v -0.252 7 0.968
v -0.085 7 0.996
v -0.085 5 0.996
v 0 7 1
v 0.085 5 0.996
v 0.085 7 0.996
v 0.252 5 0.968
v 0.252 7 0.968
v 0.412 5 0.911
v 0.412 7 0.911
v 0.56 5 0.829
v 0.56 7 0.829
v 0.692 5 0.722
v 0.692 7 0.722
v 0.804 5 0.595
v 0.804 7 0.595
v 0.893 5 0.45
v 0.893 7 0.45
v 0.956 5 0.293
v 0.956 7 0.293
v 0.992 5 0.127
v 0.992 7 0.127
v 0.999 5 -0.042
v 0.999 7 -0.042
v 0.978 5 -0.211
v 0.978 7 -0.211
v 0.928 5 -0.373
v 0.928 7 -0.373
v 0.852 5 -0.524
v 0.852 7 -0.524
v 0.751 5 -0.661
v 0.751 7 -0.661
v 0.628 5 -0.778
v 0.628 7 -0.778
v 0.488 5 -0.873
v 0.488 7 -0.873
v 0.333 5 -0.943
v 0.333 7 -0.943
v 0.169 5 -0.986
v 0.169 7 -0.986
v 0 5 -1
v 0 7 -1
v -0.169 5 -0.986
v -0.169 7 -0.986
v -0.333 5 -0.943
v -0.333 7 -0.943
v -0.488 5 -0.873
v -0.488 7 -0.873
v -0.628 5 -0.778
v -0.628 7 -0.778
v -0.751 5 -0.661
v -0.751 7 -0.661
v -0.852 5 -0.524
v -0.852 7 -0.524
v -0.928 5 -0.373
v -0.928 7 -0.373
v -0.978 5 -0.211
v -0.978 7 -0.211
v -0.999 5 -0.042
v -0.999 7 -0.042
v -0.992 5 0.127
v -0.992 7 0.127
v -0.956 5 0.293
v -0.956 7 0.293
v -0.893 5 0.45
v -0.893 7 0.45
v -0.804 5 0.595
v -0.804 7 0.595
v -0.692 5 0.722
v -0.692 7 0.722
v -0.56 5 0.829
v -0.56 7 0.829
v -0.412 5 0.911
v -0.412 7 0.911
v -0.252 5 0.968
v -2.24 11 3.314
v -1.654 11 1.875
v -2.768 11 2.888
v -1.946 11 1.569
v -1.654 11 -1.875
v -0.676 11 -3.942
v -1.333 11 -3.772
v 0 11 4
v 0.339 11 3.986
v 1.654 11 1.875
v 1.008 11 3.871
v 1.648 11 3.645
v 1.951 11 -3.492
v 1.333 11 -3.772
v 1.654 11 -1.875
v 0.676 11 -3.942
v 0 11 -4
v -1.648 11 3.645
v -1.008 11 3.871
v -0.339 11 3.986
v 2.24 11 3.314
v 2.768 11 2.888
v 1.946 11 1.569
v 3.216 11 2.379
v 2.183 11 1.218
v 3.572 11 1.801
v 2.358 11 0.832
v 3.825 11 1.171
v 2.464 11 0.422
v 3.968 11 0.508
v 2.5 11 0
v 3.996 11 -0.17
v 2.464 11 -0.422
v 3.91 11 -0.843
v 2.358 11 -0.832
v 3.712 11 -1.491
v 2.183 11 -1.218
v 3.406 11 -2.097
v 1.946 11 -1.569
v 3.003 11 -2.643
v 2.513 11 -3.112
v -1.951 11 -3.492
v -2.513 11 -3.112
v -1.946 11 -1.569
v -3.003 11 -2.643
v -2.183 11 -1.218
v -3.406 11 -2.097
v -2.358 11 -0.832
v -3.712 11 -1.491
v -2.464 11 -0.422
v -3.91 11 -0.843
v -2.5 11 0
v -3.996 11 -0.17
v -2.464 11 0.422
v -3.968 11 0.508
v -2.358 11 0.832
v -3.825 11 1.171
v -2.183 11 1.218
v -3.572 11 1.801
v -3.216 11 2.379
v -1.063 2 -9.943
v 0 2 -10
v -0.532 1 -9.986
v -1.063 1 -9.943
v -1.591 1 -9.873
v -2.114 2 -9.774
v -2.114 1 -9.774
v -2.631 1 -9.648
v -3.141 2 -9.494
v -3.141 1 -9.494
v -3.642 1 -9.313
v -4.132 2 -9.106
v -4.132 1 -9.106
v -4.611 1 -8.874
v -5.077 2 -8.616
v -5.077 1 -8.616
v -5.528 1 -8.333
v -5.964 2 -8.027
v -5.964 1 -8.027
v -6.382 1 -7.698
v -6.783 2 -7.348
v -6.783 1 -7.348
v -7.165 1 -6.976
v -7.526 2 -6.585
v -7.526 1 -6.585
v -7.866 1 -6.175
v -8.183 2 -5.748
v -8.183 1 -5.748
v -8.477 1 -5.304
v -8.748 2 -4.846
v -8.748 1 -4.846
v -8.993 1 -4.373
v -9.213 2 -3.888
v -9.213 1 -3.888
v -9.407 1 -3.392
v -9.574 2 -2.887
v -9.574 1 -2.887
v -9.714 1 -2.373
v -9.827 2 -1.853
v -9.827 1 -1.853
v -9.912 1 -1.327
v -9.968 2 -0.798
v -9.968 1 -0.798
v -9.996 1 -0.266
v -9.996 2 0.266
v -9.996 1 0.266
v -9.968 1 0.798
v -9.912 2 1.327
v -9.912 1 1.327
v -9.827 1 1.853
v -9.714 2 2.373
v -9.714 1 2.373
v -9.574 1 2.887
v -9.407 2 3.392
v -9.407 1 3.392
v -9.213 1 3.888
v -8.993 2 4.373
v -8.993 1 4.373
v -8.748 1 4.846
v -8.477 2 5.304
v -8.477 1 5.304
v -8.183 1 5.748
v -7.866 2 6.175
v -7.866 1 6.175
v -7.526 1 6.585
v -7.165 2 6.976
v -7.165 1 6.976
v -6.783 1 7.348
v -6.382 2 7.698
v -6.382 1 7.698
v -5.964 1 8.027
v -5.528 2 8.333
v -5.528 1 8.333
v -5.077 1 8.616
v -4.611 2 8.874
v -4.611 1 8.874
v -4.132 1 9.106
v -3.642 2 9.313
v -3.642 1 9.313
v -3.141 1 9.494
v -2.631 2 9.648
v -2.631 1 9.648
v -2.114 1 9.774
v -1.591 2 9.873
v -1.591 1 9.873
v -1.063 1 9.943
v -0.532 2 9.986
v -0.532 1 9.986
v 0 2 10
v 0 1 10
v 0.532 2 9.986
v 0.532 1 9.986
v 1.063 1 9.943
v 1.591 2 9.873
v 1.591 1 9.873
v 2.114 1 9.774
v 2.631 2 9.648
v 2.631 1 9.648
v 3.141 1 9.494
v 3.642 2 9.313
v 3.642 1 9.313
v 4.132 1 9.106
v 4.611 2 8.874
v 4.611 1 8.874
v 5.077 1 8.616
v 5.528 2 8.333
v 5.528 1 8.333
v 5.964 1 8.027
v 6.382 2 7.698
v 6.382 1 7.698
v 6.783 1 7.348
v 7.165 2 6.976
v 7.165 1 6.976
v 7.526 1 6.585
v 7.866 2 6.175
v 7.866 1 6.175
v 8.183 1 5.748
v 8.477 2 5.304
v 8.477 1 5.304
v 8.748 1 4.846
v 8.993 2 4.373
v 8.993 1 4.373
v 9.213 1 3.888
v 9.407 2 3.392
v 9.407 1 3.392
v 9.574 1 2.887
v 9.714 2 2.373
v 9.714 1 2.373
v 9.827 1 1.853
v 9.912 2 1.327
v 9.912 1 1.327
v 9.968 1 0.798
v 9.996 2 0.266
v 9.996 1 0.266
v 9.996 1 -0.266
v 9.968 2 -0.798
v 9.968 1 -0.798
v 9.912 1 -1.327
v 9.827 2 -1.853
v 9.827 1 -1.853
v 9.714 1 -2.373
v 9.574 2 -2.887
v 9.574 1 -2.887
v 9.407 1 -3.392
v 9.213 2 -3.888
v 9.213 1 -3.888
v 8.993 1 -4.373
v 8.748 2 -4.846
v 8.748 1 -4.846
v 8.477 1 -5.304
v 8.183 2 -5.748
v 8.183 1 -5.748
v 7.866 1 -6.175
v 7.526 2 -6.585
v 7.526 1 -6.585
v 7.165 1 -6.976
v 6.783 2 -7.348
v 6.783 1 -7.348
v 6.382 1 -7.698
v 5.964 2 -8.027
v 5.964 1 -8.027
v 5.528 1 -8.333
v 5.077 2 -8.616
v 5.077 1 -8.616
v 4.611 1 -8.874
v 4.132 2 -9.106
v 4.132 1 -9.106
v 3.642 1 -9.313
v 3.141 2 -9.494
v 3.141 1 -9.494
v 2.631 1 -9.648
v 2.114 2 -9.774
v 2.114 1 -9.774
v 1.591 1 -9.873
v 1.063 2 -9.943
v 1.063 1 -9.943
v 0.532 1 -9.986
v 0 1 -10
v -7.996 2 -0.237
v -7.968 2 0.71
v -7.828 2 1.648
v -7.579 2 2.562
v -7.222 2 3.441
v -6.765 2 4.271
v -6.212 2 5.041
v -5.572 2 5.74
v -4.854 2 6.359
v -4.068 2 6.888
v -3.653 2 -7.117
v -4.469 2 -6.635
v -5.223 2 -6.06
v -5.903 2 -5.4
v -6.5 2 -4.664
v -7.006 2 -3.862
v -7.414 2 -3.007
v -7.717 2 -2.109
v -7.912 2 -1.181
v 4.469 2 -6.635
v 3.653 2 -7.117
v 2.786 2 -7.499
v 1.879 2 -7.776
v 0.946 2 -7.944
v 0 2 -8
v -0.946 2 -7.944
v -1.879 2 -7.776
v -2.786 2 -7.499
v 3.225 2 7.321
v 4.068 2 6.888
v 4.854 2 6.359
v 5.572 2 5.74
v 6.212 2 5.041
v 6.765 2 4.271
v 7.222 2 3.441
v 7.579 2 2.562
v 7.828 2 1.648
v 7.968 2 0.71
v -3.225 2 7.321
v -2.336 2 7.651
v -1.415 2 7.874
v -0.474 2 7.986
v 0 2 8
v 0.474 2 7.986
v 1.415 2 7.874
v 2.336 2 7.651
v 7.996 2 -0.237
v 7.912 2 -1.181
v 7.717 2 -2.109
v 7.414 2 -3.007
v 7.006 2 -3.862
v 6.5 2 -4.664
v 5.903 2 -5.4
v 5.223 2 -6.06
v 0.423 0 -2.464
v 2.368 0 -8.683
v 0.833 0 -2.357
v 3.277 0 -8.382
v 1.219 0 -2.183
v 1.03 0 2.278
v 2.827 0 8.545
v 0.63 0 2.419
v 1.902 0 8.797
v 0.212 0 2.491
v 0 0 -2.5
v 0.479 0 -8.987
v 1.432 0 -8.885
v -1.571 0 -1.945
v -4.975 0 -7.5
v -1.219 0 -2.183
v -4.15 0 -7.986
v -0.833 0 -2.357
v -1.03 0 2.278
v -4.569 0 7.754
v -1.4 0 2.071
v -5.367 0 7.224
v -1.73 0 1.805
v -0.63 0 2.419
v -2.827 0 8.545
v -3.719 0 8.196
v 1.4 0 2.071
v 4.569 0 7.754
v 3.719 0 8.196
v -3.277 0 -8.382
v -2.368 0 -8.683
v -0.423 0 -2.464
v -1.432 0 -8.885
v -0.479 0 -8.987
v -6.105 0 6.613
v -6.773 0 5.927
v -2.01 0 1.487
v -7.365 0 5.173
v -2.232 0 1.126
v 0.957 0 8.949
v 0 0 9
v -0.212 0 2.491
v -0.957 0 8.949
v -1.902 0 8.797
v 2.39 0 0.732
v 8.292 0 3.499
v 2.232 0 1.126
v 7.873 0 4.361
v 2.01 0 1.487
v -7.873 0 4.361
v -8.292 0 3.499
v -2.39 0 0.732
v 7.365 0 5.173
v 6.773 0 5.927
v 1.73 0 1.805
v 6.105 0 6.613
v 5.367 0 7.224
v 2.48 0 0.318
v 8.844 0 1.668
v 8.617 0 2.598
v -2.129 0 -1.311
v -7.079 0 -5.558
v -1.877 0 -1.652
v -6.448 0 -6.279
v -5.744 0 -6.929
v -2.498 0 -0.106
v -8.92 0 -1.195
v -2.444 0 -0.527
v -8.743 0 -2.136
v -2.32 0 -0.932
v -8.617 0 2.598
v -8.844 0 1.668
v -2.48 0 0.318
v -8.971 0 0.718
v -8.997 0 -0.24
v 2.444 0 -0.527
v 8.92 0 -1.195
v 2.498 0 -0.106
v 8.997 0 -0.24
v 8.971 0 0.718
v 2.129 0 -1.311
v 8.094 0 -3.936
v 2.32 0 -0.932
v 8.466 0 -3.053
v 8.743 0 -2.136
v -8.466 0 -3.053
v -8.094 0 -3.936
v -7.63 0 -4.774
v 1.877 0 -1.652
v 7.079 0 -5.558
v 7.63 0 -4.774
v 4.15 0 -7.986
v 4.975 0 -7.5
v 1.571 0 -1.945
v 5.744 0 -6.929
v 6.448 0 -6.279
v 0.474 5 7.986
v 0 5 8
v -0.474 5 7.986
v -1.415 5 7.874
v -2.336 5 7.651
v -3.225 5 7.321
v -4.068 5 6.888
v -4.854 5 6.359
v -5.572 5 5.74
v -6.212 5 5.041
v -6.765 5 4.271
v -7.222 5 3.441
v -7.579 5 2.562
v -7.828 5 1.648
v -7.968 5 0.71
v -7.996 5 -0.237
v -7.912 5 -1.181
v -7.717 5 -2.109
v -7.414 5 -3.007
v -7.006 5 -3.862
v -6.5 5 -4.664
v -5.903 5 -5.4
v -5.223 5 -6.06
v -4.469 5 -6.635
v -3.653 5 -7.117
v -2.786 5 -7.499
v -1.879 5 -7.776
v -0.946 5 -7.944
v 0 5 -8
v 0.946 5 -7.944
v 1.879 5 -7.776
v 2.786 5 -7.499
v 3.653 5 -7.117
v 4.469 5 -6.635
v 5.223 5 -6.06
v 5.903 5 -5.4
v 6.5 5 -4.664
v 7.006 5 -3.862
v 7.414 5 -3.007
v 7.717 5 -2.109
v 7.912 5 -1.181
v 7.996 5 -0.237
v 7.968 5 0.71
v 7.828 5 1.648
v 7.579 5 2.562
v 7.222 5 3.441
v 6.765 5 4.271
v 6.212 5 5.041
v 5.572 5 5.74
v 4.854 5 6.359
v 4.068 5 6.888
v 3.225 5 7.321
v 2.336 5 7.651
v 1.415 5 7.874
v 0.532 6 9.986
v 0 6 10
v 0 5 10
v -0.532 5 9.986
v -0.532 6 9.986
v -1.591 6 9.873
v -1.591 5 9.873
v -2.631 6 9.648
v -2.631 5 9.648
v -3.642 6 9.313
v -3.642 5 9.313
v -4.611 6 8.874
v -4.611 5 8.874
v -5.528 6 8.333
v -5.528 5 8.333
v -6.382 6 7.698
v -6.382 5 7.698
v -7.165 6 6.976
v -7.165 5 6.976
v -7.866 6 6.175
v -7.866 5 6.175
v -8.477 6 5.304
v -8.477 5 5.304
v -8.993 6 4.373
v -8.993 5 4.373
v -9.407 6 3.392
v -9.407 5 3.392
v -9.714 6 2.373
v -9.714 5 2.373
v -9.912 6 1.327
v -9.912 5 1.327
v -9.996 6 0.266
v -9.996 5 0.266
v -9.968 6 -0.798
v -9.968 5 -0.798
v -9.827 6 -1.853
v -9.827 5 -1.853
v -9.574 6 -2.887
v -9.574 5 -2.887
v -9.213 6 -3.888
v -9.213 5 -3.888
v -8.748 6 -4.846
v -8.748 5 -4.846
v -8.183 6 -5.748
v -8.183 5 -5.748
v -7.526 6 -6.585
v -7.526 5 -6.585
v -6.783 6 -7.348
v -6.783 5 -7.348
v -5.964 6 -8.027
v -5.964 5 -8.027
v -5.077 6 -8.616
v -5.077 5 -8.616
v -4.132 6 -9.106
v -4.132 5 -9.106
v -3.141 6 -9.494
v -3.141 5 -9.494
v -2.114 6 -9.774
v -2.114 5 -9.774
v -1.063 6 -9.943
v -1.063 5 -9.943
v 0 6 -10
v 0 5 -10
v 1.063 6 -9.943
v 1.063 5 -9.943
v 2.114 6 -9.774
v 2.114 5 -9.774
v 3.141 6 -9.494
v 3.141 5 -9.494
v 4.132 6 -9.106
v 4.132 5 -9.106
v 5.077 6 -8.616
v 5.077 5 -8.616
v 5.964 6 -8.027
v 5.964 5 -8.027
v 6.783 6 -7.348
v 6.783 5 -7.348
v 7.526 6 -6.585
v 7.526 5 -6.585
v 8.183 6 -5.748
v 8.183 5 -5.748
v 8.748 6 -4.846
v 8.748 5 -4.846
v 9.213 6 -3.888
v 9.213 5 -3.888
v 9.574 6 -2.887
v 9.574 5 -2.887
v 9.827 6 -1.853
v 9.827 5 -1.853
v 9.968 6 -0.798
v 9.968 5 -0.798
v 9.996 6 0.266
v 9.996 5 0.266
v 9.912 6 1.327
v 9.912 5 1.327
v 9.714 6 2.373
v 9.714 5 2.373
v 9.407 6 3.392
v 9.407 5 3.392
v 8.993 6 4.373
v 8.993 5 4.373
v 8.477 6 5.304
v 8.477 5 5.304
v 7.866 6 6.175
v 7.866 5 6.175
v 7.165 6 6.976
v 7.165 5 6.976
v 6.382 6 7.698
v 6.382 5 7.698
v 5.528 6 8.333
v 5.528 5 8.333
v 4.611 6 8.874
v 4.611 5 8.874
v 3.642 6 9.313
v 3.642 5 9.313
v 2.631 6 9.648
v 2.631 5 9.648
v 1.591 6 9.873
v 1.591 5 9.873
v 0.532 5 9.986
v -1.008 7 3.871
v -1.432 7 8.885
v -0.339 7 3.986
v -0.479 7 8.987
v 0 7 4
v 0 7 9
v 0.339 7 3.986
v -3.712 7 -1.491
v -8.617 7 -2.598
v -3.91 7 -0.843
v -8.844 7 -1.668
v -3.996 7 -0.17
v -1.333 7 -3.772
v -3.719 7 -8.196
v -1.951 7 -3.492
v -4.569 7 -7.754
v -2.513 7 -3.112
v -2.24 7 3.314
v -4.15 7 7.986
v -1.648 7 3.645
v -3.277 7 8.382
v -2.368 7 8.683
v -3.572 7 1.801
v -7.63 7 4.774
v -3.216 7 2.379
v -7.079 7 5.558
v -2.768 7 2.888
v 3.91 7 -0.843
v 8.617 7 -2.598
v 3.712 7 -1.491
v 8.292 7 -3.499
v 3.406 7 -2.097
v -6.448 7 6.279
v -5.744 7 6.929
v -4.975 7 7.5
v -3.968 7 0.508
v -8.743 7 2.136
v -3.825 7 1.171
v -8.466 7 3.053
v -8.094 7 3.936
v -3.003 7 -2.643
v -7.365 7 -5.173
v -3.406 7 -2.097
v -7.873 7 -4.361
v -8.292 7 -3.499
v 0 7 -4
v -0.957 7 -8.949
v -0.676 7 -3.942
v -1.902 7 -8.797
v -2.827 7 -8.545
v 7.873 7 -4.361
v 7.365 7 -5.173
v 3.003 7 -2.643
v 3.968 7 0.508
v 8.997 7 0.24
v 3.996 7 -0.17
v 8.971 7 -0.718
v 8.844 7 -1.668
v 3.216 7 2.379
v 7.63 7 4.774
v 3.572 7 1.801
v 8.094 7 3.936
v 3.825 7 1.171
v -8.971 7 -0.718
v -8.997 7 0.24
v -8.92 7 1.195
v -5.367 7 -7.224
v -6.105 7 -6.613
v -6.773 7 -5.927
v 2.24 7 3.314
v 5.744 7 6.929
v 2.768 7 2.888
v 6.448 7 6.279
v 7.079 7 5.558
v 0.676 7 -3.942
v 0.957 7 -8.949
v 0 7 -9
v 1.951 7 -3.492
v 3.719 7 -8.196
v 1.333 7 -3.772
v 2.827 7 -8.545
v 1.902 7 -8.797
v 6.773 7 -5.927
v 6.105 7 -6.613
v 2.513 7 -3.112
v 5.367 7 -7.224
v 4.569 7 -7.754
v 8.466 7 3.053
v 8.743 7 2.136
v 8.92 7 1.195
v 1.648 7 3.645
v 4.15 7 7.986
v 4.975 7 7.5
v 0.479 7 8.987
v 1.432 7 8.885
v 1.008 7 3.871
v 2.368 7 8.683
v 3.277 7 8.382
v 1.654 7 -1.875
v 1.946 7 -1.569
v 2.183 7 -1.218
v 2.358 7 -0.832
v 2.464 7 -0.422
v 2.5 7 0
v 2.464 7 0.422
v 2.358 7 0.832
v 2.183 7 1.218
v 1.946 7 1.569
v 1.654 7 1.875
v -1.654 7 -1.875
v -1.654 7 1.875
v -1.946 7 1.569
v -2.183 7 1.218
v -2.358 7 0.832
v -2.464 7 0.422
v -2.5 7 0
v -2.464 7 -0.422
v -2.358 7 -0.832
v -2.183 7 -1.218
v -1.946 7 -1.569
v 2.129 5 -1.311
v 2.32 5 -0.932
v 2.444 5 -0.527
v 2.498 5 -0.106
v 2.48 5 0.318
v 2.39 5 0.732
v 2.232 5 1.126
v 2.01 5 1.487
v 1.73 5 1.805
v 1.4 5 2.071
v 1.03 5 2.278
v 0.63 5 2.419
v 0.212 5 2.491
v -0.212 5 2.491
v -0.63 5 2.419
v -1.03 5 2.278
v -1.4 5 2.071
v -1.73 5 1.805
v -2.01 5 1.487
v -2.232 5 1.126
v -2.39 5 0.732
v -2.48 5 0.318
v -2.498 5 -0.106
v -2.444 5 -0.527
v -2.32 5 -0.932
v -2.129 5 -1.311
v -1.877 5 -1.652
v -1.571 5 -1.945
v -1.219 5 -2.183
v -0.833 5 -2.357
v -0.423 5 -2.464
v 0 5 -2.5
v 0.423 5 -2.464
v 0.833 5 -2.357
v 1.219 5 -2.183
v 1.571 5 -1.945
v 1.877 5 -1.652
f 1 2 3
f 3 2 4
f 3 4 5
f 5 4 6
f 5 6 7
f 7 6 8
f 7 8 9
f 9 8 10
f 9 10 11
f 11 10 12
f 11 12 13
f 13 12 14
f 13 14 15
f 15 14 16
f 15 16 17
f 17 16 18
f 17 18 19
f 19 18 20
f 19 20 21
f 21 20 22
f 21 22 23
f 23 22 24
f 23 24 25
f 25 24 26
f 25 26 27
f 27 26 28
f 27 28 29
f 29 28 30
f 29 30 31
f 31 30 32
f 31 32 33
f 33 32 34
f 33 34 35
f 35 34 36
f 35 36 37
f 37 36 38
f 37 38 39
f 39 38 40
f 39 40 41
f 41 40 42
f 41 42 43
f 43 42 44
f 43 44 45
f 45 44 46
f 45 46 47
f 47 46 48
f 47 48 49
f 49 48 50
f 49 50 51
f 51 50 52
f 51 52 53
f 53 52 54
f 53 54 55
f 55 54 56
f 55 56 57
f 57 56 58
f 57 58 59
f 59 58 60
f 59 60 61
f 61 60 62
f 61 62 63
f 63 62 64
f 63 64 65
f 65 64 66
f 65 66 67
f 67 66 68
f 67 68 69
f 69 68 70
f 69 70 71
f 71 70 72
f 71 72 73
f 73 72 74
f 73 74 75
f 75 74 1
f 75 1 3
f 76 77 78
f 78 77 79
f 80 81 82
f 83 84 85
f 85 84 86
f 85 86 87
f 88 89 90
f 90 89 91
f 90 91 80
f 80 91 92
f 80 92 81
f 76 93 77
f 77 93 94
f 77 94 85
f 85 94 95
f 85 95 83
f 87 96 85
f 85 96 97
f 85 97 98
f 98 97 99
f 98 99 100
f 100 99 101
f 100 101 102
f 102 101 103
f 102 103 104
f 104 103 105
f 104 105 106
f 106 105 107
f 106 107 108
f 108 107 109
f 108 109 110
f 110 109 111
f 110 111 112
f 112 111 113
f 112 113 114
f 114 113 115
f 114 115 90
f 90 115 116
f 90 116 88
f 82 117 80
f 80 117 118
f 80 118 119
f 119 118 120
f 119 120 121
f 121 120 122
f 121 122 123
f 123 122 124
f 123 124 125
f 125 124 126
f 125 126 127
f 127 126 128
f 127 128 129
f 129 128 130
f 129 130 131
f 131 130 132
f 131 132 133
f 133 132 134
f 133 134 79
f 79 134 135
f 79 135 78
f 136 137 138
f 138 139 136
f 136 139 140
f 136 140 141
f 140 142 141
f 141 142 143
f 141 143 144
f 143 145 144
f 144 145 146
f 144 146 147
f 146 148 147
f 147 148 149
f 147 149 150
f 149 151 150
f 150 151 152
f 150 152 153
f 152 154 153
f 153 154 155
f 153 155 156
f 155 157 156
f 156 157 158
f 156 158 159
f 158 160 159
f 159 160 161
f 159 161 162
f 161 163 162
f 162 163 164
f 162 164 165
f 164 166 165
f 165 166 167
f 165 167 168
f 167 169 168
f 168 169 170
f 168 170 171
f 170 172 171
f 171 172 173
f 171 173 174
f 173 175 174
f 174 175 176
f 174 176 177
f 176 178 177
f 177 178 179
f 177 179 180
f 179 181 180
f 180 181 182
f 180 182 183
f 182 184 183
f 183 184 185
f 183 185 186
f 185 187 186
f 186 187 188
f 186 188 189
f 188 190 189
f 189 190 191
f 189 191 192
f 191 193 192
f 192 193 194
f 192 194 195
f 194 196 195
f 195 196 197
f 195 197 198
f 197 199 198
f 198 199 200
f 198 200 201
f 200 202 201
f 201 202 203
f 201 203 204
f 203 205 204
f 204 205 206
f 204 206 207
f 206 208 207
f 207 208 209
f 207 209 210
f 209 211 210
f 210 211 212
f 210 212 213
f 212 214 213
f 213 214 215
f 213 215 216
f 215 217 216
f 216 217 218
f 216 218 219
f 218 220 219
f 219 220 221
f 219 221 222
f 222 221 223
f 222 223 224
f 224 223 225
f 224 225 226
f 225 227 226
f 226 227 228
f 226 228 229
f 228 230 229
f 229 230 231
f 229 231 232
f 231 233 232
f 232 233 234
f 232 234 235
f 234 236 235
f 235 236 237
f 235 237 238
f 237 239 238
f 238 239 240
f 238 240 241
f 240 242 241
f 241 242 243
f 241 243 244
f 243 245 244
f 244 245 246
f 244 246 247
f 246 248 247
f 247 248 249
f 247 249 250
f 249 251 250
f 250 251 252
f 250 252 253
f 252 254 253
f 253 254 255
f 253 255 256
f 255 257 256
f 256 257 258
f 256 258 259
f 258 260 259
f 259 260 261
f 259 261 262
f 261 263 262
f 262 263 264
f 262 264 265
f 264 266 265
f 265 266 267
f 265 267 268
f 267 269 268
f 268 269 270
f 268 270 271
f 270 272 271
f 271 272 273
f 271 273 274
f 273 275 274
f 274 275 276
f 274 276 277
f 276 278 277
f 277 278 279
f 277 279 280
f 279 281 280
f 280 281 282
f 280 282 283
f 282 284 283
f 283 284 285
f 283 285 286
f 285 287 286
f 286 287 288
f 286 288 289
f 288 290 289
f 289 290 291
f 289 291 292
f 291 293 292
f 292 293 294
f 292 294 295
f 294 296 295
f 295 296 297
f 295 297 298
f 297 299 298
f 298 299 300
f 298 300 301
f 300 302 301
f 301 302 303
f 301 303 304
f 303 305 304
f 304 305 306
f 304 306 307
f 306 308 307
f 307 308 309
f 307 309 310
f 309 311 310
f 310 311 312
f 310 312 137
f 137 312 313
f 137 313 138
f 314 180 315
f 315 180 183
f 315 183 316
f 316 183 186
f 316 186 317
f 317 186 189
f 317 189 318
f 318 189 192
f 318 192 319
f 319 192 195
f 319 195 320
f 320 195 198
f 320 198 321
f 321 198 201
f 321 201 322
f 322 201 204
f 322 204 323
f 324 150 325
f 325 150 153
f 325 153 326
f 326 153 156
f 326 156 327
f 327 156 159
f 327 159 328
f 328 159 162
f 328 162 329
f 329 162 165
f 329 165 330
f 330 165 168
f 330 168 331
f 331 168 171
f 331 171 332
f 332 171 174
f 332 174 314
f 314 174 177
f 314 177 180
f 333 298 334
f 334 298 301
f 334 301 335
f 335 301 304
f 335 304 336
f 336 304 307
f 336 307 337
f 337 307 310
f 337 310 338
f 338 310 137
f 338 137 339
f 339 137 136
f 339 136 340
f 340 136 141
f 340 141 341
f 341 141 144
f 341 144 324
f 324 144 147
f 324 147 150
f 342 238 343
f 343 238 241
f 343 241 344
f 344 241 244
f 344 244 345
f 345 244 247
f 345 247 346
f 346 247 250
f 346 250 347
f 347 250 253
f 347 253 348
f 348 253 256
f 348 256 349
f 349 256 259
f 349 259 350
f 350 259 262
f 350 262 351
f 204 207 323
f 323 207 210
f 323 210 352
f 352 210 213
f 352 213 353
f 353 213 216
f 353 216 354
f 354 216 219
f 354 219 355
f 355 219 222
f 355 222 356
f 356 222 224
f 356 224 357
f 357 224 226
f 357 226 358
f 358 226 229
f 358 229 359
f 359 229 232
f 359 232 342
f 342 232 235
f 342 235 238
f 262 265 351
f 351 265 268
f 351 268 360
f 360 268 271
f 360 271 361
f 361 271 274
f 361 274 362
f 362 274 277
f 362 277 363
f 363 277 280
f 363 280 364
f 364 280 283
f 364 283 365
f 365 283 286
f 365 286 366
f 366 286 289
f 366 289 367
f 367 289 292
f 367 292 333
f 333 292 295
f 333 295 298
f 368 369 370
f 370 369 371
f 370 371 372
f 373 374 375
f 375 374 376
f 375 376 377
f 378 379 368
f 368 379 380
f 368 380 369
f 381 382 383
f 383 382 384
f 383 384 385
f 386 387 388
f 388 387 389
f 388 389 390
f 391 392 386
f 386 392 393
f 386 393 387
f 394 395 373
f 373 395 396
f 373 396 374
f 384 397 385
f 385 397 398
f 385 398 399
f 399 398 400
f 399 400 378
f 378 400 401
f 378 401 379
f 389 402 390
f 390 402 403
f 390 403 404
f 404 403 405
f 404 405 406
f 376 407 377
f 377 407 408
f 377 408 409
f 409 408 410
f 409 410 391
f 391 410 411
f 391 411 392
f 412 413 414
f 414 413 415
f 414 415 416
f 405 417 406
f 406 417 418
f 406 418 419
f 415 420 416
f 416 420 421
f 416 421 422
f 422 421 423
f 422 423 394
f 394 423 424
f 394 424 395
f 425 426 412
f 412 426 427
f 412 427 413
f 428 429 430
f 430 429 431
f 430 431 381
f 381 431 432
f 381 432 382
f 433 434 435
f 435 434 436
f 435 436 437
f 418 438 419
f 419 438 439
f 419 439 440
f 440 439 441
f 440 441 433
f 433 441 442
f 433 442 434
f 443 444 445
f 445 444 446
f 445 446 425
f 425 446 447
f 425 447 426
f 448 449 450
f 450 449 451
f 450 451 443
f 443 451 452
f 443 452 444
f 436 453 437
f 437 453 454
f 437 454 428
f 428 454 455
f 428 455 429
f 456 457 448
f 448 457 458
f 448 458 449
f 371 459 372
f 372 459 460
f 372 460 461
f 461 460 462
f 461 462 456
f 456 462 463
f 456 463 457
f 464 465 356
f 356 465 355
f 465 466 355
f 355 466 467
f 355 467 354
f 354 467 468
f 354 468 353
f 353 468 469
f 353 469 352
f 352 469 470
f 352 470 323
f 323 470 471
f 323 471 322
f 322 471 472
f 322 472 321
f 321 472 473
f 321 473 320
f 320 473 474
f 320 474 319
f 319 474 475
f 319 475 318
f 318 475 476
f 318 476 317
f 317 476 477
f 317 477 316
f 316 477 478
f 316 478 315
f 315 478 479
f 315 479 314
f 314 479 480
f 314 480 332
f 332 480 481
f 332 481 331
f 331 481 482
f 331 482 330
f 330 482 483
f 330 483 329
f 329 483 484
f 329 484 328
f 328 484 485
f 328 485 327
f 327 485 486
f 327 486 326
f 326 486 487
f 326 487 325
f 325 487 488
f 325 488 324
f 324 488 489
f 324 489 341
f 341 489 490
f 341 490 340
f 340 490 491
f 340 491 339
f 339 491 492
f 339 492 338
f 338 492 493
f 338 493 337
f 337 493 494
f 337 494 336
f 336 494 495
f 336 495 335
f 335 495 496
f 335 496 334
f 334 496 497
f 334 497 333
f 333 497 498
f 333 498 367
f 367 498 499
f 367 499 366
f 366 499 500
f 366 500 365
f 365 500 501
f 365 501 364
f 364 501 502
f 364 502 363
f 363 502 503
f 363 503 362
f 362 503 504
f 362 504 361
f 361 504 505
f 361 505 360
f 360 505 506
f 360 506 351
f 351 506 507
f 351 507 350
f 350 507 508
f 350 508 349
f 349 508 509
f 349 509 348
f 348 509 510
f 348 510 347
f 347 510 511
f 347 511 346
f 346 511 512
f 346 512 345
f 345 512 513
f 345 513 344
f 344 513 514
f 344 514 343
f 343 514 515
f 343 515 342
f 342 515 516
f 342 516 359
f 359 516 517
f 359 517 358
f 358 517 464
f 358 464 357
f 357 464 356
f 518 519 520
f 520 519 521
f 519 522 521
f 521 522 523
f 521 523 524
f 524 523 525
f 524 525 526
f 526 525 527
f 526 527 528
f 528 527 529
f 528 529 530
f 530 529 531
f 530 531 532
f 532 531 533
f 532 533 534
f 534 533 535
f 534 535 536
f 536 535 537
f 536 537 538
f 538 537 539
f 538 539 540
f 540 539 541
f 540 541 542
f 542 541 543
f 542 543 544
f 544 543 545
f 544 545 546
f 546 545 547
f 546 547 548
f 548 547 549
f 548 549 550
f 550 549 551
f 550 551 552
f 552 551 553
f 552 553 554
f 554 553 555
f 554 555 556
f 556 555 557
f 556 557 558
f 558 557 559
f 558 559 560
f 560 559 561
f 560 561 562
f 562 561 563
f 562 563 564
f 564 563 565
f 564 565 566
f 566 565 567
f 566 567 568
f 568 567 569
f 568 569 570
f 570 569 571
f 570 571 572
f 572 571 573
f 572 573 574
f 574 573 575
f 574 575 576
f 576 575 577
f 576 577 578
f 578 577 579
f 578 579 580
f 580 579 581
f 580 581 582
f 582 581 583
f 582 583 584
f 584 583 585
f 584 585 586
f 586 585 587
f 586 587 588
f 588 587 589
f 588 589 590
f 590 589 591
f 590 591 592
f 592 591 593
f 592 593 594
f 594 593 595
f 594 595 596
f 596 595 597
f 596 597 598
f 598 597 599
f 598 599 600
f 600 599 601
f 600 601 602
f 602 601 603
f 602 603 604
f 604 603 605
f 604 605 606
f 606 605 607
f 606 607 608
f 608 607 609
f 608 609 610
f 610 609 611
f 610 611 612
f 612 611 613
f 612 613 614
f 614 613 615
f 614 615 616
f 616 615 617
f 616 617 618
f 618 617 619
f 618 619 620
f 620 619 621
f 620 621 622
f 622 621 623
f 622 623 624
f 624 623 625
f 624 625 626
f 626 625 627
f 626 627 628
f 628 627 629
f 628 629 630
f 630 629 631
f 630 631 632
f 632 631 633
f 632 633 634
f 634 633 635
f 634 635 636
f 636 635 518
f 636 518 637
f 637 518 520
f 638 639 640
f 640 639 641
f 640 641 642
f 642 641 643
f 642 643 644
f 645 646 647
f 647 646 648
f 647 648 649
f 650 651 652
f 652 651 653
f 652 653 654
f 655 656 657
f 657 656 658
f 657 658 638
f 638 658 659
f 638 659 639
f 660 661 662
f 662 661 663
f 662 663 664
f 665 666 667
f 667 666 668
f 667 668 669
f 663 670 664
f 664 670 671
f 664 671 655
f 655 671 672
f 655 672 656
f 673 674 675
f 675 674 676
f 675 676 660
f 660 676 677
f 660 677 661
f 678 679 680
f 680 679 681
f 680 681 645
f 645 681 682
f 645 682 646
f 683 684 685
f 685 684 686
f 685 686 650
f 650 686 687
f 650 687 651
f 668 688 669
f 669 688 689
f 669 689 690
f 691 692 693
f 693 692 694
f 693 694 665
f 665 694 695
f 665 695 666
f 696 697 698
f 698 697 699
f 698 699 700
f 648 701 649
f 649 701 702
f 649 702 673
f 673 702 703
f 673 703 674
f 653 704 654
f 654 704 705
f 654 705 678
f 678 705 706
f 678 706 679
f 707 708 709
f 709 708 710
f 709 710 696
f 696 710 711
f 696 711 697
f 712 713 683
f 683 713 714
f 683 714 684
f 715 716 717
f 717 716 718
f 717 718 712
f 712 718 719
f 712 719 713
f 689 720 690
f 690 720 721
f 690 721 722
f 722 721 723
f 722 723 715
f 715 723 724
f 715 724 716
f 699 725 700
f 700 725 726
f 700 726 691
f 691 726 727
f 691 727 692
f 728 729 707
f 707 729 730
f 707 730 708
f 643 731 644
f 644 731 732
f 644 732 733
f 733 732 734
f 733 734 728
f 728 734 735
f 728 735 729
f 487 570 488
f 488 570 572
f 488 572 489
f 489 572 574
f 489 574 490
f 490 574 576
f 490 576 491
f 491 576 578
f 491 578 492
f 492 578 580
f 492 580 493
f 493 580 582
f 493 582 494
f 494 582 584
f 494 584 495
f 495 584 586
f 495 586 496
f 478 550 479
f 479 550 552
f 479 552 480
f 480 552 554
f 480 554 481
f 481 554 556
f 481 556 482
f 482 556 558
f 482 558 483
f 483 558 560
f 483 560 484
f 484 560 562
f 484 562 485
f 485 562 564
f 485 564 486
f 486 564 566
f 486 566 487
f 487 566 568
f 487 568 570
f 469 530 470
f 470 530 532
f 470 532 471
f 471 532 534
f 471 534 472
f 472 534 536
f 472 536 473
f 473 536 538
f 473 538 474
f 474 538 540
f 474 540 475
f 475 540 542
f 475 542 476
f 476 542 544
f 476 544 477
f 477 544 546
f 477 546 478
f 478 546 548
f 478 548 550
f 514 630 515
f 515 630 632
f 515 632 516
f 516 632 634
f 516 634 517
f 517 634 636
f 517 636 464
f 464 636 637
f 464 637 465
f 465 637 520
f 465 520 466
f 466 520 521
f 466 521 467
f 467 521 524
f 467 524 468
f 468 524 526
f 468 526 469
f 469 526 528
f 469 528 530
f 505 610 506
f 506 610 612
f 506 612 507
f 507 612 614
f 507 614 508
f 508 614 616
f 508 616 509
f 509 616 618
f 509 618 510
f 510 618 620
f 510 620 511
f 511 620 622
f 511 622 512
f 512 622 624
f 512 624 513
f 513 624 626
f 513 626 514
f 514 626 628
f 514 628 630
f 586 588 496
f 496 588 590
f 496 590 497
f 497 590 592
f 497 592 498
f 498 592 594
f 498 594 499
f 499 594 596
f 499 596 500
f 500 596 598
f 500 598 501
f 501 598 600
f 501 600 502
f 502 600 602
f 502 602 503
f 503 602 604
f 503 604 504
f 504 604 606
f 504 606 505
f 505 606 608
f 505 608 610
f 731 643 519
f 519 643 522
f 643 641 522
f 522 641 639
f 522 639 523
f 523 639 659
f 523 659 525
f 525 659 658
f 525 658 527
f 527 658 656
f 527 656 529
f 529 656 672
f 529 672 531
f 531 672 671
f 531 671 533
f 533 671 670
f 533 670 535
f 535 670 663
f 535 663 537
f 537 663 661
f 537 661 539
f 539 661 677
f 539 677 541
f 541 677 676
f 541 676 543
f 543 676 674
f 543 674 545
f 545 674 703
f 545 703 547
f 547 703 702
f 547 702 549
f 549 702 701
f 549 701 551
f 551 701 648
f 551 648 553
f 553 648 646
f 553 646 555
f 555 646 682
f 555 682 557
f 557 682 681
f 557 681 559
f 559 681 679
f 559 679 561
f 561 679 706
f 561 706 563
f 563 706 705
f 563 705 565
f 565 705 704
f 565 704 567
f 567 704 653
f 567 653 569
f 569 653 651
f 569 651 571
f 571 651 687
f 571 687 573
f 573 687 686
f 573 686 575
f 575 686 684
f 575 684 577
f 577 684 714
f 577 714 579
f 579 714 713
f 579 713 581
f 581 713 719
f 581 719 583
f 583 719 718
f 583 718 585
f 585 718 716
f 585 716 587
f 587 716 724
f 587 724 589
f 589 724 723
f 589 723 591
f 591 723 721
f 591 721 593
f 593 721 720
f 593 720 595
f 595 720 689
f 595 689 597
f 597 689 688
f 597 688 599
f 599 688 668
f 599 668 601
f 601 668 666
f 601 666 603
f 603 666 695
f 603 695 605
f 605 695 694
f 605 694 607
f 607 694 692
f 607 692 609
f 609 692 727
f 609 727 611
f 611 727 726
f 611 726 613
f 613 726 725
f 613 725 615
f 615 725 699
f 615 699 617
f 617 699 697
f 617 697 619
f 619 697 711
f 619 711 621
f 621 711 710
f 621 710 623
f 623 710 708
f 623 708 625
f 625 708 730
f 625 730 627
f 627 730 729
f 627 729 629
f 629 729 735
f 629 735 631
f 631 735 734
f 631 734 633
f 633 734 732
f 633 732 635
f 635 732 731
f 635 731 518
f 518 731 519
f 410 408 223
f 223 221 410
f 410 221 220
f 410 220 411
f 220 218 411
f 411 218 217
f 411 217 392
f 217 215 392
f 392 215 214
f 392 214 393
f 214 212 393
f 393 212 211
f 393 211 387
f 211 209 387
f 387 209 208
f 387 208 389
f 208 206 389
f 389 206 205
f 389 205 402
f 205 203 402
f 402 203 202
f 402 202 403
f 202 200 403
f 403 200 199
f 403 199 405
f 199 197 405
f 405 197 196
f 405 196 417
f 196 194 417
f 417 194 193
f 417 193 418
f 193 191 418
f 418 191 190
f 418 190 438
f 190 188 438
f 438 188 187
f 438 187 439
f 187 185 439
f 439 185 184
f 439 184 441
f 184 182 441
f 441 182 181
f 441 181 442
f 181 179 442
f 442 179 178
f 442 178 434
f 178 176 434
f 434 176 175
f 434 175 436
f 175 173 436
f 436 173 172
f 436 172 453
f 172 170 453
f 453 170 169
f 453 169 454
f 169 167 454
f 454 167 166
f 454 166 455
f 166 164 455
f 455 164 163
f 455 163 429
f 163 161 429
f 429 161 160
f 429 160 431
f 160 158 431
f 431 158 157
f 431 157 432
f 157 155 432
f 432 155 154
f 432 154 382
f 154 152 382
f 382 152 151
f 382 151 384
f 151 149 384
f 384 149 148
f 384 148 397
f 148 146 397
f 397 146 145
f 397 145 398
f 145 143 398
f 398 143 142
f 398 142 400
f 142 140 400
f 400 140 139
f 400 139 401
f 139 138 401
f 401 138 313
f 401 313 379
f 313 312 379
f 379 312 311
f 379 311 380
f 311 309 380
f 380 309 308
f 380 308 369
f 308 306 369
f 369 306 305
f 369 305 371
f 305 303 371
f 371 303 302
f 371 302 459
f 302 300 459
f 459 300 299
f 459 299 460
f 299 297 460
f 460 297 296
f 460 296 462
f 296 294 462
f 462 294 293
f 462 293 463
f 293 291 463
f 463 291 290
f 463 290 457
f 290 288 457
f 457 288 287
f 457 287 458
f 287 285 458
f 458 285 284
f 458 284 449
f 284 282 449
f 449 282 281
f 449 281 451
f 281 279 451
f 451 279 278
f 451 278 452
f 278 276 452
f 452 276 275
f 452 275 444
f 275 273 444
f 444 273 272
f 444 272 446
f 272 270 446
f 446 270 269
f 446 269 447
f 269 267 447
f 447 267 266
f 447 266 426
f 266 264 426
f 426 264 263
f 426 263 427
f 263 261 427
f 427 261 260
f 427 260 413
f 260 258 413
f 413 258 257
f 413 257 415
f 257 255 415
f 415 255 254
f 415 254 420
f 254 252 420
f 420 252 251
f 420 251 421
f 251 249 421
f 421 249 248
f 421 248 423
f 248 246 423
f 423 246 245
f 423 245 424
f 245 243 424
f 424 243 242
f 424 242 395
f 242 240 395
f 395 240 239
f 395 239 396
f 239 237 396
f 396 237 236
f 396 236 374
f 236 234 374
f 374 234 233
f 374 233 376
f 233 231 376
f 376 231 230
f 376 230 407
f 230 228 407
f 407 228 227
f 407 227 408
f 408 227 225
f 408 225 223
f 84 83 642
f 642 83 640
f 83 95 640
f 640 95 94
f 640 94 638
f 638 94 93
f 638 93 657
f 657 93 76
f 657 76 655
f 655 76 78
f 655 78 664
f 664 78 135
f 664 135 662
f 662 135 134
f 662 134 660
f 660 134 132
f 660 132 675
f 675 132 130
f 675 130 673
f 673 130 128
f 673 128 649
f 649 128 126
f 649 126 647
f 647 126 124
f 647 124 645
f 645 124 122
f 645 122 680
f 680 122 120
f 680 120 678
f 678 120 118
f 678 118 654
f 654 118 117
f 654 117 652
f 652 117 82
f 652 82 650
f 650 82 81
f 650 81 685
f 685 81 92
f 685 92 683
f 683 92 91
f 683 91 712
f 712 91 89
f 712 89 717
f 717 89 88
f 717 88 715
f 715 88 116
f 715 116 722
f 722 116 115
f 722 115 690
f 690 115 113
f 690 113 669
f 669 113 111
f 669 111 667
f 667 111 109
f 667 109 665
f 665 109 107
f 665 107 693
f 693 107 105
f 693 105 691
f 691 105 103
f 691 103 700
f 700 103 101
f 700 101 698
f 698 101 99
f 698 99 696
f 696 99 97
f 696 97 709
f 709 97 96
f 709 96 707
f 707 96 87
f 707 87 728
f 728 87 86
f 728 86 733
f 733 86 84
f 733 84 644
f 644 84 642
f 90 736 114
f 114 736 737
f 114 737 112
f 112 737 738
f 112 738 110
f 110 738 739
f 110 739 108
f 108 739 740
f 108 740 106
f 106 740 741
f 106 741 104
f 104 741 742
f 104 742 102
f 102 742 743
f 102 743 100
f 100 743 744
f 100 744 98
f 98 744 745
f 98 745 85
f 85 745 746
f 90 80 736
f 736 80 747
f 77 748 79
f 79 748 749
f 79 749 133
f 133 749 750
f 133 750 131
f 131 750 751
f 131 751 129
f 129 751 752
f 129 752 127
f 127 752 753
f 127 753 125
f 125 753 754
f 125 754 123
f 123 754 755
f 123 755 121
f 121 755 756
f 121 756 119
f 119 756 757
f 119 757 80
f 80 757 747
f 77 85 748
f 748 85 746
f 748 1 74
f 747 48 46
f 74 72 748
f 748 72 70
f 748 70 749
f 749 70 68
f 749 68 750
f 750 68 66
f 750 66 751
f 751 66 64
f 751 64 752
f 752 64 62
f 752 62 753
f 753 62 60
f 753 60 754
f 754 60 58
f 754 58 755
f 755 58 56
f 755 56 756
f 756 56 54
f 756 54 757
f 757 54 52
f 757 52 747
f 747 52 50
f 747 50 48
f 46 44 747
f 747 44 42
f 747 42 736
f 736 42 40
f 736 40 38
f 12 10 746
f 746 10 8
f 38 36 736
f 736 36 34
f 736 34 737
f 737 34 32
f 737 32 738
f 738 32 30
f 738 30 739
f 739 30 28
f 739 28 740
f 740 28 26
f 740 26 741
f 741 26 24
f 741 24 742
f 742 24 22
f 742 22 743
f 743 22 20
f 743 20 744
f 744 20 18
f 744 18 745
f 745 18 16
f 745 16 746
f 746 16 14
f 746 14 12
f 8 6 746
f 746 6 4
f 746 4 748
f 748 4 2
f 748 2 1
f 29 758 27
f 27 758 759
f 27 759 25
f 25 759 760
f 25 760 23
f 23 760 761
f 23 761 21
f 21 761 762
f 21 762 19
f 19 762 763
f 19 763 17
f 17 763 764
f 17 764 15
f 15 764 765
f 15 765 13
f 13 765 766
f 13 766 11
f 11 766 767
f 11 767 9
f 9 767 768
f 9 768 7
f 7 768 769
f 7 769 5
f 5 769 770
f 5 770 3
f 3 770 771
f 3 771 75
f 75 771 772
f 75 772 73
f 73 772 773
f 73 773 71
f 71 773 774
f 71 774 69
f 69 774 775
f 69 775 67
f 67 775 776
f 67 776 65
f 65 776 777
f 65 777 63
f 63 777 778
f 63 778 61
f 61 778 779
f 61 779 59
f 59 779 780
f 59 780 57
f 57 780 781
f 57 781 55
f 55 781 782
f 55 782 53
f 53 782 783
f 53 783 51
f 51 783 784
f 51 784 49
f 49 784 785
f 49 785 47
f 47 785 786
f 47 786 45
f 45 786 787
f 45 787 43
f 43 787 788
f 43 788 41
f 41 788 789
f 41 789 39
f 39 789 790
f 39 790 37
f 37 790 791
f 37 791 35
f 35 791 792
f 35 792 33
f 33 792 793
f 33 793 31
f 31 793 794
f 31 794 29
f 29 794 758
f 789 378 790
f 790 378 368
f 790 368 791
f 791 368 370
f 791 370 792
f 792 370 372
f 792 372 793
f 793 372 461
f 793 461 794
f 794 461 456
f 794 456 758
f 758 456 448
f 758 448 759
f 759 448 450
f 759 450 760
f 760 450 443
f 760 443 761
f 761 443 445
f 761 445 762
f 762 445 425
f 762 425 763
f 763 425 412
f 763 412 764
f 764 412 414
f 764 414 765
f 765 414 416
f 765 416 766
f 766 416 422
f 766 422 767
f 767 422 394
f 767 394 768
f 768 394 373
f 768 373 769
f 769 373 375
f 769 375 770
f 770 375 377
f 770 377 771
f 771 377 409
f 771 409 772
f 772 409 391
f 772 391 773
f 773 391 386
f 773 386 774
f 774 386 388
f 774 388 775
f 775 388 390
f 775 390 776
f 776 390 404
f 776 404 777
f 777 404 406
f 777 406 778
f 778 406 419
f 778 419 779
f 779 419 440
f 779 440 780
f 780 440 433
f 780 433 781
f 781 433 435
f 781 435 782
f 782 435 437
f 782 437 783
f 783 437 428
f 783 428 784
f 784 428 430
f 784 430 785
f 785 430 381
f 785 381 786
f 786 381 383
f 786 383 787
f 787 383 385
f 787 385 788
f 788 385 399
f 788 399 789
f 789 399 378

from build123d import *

# Parameters (mm, degrees)
CROQUIS1_R              = 10
SALIENTE_EXTRUIR1_DEPTH = 2
CROQUIS4_R              = 8
SALIENTE_EXTRUIR2_DEPTH = 3
CROQUIS5_R              = 10
SALIENTE_EXTRUIR3_DEPTH = 2
CHAFL_N1_SIZE           = 1
CHAFL_N2_SIZE           = 1
CROQUIS7_R              = 4
SALIENTE_EXTRUIR4_DEPTH = 4
CORTAR_EXTRUIR1_DEPTH   = 16.779733838
CROQUIS8_R              = 1
CORTAR_EXTRUIR2_DEPTH   = 18.916472867
CROQUIS9_R              = 2.5
CORTAR_EXTRUIR3_DEPTH   = 5


with BuildPart() as part:
    # Croquis1 → Saliente-Extruir1 (new body)
    with BuildSketch(Plane(origin=(0, 0, 0), x_dir=(1, 0, 0), z_dir=(0, 1, 0))):
        with Locations(Location((0, 0, 0), (0, 0, 270))):
            Circle(CROQUIS1_R)
    extrude(amount=SALIENTE_EXTRUIR1_DEPTH)

    # Croquis4 → Saliente-Extruir2 (add)
    with BuildSketch(Plane(origin=(0, 2, 0), x_dir=(1, 0, 0), z_dir=(0, 1, 0))):
        with Locations(Location((0, 0, 0), (0, 0, 270))):
            Circle(CROQUIS4_R)
    extrude(amount=SALIENTE_EXTRUIR2_DEPTH)

    # Croquis5 → Saliente-Extruir3 (add)
    with BuildSketch(Plane(origin=(0, 5, 0), x_dir=(1, 0, 0), z_dir=(0, 1, 0))):
        with Locations(Location((0, 0, 0), (0, 0, 270))):
            Circle(CROQUIS5_R)
    extrude(amount=SALIENTE_EXTRUIR3_DEPTH)

    # Chaflán1
    chafl_n1_edges = [part.edges().sort_by_distance(p)[0] for p in [
        (0, 7, -10),
    ]]
    chamfer(chafl_n1_edges, length=CHAFL_N1_SIZE)

    # Chaflán2
    chafl_n2_edges = [part.edges().sort_by_distance(p)[0] for p in [
        (0, 0, -10),
    ]]
    chamfer(chafl_n2_edges, length=CHAFL_N2_SIZE)

    # Croquis7 → Saliente-Extruir4 (add)
    with BuildSketch(Plane(origin=(0, 7, 0), x_dir=(1, 0, 0), z_dir=(0, 1, 0))):
        with Locations(Location((0, 0, 0), (0, 0, 270))):
            Circle(CROQUIS7_R)
    extrude(amount=SALIENTE_EXTRUIR4_DEPTH)

    # Croquis6 → Cortar-Extruir1 (cut, through all)
    with BuildSketch(Plane(origin=(0, 7, 0), x_dir=(1, 0, 0), z_dir=(0, 1, 0))):
        with BuildLine():
            Line((-1.653594569, -1.875), (1.653594569, -1.875))
            ThreePointArc((1.653594569, -1.875), (2.5, 0), (1.653594569, 1.875))
            Line((1.653594569, 1.875), (-1.653594569, 1.875))
            ThreePointArc((-1.653594569, 1.875), (-2.5, 0), (-1.653594569, -1.875))
        make_face()
    extrude(amount=CORTAR_EXTRUIR1_DEPTH, mode=Mode.SUBTRACT)

    # Croquis8 → Cortar-Extruir2 (cut, through all)
    with BuildSketch(Plane.XZ):
        with Locations(Location((0, 0, 0), (0, 0, 270))):
            Circle(CROQUIS8_R)
    extrude(amount=-CORTAR_EXTRUIR2_DEPTH, mode=Mode.SUBTRACT)

    # Croquis9 → Cortar-Extruir3 (cut)
    with BuildSketch(Plane.XZ):
        with Locations(Location((0, 0, 0), (0, 0, 270))):
            Circle(CROQUIS9_R)
    extrude(amount=-CORTAR_EXTRUIR3_DEPTH, mode=Mode.SUBTRACT)


solid = part.part
